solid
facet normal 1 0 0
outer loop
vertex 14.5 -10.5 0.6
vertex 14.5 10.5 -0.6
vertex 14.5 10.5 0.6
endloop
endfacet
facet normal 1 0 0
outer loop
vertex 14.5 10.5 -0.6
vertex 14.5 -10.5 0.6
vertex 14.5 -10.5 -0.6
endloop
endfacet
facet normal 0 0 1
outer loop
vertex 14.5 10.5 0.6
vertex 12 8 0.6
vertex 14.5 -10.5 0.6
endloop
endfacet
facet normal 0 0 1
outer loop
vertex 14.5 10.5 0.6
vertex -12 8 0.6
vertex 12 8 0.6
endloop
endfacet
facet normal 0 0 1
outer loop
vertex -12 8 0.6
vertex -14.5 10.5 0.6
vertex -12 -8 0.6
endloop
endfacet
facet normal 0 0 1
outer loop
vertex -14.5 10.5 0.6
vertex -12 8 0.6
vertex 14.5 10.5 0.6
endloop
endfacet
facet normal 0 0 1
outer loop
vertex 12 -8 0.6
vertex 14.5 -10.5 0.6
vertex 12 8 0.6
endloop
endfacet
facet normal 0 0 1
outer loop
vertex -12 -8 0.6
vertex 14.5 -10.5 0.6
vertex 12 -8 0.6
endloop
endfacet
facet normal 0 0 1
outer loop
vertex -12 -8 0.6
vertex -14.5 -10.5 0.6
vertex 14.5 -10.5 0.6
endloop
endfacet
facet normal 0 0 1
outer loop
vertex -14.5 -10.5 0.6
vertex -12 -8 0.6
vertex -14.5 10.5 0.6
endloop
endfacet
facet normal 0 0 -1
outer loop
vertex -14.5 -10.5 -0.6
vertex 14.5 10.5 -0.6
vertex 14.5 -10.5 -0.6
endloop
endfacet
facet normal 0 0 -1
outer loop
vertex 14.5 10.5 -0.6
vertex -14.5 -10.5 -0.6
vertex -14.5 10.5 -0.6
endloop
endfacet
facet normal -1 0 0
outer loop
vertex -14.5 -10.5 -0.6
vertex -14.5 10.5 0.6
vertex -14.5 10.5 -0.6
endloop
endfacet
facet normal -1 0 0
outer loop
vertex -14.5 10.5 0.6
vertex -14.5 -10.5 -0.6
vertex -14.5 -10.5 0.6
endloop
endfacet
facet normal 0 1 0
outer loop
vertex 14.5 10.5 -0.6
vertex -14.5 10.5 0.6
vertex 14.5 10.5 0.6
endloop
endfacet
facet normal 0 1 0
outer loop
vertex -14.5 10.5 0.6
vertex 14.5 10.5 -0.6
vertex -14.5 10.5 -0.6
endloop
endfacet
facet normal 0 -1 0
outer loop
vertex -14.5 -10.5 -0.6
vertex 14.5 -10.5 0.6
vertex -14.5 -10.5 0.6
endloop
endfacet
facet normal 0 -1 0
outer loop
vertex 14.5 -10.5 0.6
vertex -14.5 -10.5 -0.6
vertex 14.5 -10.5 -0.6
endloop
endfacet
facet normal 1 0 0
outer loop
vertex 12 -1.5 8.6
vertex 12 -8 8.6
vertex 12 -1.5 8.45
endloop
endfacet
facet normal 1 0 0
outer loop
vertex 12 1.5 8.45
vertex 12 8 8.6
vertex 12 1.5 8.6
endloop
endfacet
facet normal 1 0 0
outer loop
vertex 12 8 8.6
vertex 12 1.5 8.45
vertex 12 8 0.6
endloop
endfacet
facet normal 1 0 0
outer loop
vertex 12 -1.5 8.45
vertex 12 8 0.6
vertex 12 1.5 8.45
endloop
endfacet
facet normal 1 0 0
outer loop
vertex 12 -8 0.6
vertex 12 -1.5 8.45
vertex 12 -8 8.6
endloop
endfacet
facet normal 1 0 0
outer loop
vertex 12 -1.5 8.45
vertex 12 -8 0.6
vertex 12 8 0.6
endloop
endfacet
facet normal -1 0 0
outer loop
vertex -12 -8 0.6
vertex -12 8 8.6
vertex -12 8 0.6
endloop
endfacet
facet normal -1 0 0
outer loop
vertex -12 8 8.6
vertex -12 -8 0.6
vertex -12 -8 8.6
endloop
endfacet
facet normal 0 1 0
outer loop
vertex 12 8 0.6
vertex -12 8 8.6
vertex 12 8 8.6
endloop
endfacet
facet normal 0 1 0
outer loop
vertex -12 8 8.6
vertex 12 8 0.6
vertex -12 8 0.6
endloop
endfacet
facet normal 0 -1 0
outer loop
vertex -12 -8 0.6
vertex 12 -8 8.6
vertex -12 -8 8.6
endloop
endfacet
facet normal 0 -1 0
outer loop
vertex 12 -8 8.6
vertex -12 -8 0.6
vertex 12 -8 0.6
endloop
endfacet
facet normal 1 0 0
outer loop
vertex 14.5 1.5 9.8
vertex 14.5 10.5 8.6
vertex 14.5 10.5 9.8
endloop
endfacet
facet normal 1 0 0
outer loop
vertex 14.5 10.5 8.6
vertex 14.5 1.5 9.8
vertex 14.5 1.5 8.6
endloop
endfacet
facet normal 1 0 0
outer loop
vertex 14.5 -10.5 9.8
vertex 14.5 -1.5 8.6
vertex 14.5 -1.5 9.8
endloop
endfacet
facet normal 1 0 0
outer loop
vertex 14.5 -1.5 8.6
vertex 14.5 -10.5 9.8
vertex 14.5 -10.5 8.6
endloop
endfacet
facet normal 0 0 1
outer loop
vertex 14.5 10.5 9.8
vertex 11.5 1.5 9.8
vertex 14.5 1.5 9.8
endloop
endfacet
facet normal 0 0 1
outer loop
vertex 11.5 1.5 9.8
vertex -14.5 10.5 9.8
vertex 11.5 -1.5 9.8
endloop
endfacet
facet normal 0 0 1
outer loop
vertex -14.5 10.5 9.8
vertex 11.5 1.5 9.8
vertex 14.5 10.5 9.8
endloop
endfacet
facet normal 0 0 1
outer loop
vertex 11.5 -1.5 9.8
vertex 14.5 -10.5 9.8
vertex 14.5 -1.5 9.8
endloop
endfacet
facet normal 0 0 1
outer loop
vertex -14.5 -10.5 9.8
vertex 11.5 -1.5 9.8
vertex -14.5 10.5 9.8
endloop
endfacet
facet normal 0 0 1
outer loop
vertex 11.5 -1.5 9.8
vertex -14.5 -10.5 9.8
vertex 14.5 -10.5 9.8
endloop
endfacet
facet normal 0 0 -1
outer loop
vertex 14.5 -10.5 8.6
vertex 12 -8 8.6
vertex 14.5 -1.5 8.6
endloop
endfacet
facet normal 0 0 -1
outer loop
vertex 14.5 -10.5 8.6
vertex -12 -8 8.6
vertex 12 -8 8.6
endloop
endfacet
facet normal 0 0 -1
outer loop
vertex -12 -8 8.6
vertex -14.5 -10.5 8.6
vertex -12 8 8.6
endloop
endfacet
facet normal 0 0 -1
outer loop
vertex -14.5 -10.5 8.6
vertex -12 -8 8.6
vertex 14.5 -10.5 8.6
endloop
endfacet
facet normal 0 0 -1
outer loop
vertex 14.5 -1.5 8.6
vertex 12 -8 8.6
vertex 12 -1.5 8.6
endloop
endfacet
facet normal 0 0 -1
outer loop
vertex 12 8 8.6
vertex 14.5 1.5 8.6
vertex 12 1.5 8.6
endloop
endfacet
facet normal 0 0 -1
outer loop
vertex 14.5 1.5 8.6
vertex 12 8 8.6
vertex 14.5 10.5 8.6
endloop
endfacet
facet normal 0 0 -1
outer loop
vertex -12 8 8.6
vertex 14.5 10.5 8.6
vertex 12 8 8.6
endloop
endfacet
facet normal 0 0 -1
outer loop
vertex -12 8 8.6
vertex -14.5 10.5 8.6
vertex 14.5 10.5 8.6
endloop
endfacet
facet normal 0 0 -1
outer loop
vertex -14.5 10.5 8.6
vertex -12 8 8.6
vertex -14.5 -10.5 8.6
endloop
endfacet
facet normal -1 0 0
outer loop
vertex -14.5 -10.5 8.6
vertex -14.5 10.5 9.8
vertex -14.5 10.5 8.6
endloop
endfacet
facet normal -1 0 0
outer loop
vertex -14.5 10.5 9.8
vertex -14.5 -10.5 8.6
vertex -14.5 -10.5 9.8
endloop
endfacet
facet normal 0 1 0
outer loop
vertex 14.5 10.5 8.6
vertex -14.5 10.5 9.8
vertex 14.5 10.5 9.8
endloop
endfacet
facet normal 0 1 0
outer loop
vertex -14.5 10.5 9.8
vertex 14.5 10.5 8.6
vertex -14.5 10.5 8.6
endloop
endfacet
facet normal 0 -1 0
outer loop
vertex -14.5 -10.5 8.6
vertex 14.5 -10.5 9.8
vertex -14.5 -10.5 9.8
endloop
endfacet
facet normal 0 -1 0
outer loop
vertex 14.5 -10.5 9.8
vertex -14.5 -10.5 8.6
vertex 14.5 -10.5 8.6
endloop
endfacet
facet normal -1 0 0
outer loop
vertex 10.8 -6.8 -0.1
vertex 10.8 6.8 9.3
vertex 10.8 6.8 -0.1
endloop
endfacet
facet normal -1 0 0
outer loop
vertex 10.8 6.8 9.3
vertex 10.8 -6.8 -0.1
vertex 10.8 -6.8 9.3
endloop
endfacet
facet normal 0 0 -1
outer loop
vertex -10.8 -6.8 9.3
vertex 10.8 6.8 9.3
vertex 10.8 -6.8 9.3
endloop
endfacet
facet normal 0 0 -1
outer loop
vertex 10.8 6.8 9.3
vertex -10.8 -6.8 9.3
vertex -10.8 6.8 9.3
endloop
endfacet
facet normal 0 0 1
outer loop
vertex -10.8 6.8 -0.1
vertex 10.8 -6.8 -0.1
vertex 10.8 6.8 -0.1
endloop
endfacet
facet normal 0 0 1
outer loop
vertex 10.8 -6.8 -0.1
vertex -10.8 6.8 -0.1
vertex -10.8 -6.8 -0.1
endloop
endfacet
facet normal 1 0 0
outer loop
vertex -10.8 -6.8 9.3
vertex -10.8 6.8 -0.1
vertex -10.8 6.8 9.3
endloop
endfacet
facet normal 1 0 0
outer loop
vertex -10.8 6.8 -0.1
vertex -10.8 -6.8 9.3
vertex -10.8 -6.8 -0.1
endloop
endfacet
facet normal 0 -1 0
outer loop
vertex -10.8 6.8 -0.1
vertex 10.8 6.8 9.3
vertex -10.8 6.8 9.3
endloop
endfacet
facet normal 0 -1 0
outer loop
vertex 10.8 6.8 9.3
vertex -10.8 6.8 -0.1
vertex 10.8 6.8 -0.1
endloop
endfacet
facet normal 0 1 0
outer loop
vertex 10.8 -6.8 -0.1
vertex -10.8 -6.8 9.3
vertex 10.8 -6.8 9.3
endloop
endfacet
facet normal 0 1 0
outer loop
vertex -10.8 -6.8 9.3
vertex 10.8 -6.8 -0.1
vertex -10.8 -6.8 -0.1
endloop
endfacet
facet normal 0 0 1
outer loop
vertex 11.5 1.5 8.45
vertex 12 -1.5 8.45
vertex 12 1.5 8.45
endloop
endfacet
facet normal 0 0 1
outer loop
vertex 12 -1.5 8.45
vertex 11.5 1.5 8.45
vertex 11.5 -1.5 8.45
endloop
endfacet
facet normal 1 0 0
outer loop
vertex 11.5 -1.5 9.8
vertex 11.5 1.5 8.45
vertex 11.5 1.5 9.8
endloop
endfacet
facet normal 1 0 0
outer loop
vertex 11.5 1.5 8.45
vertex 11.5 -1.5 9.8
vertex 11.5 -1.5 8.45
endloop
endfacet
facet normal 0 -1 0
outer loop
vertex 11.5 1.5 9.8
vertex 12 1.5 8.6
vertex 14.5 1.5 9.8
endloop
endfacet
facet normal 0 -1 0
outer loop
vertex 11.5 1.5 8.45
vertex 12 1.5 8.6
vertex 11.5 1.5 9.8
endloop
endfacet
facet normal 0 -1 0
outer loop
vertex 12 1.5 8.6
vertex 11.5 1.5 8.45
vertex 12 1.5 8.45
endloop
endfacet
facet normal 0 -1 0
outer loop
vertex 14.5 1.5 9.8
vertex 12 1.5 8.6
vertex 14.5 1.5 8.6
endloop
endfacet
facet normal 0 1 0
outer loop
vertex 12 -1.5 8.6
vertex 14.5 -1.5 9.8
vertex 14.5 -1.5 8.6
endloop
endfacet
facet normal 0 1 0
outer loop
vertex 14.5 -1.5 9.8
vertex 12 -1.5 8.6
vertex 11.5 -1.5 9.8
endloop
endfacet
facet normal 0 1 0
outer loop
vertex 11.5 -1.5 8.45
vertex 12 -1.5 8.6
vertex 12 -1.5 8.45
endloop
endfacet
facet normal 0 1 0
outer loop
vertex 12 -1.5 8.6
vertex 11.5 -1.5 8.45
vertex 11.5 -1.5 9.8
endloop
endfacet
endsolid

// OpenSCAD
// file: parameters.scad
// AFPM-Desk-v4 PoleShoe shared parameters (mm)
// SSDR dual-rotor axial-flux PM learning generator:
// mild-steel back-iron + mild-steel pole shoes under each magnet.
// Faraday induction education only — not free-energy / overunity.
// Target: Anycubic Kobra 3 Max, 0.4 mm nozzle, 0.2 mm layers, PETG.

$fn = 72;

// --- Printer / FDM assumptions ---
nozzle = 0.4;
layer = 0.2;
wall = 1.6;                 // load-bearing ~4 perimeters
housing_wall = 2.4;
clearance_slip = 0.35;      // shaft slip fit
clearance_loose = 0.55;
press_interference = 0.15;  // bearing pocket undersize total (coupon-test)
magnet_pocket_xy = 0.25;    // +0.25 mm on diameter
magnet_pocket_z = 0.15;     // +0.15 mm depth
elephant_foot = 0.5;

// --- Magnets (N42 Neo discs) — Austin's Ø20×5 stock ---
magnet_d = 20;
magnet_h = 5;
magnet_count = 12;          // per rotor (12+12 total)
magnet_pcd = 90;            // center pitch; ~3.3 mm edge gap between discs

// --- Mild-steel pole shoes (flux concentrators under each magnet) ---
// Slightly smaller OD than magnet teaches concentration / reluctance.
pole_shoe_d = 18;
pole_shoe_h = 2.0;          // purchased mild-steel disc or punched blank
pole_shoe_pocket_xy = 0.30;
pole_shoe_pocket_z = 0.15;

// --- Steel back-iron (purchased mild steel disc behind pole-shoe ring) ---
steel_od = 118;
steel_id = 16;              // clearance around hub boss
steel_h = 1.5;              // 1.5–2.0 mm mild steel OK
steel_recess_clearance = 0.3;

// --- Rotor printed disc ---
rotor_od = 130;
rotor_hub_bore = 12;        // seats on shaft_hub boss
rotor_thickness = 11;       // magnet + pole shoe + plastic floor + steel recess
magnet_pocket_depth = magnet_h + magnet_pocket_z;
pole_shoe_pocket_depth = pole_shoe_h + pole_shoe_pocket_z;
steel_recess_depth = steel_h + 0.2;

// --- Stator (coreless, between rotors) — 9 coils for 3-phase ---
stator_od = 140;
stator_id = 30;
stator_thickness = 12;
coil_count = 9;
coil_slot_w = 22;
coil_slot_l = 28;           // radial length of pocket
coil_slot_depth = 10;
coil_pcd = 90;
stator_pillar_pcd = 118;    // M4 pillar holes

// --- Coil bobbin (stays in stator) ---
former_core_w = 16;
former_core_l = 24;
former_flange = 2.5;
former_wind_h = 9.2;        // fits coil_slot_depth - margin

// --- Shaft / bearings ---
shaft_d = 8;
bearing_od = 22;            // 608-2RS / 608ZZ
bearing_id = 8;
bearing_h = 7;
bearing_seat_od = bearing_od - press_interference; // ~21.85; coupon-test

// --- Base / frame ---
base_w = 200;
base_d = 180;
base_h = 8;
post_h = 78;
post_spacing = 145;         // Y distance between bearing post centers (thicker stack)
post_d = 36;

// --- Axial stack targets ---
// crank | brg | hub+rotorA+steel | air | stator | air | steel+rotorB+hub | brg
air_gap_nominal = 1.75;     // mechanical per side magnet↔coil face (1.5–2.0)

// --- Crank ---
crank_arm_len = 90;
crank_arm_w = 18;
crank_arm_t = 10;
handle_d = 14;
handle_len = 45;

// --- Electronics tray ---
tray_w = 80;
tray_d = 55;
tray_h = 14;

// --- Fasteners ---
m3_clear = 3.4;
m3_tap = 2.5;
m4_clear = 4.3;
// main file
include <parameters.scad>
// Permanent thin bobbin that stays in stator. Print 9.
// Wind ~180–220 turns 26–28 AWG then drop into stator_plate pockets.

bw = former_core_w;
bl = former_core_l;
bh = former_wind_h;
flange = former_flange;

module coil_bobbin() {
  difference() {
    union() {
      translate([0,0,0])
        cube([bl + 2*flange, bw + 2*flange, 1.2], center=true);
      translate([0,0,bh/2])
        cube([bl, bw, bh], center=true);
      translate([0,0,bh])
        cube([bl + 2*flange, bw + 2*flange, 1.2], center=true);
    }
    // hollow wind window
    translate([0,0,bh/2])
      cube([bl - 2.4, bw - 2.4, bh + 0.2], center=true);
    // lead slot
    translate([bl/2 + flange/2, 0, bh])
      cube([flange+1, 3, 1.5], center=true);
  }
}

coil_bobbin();
